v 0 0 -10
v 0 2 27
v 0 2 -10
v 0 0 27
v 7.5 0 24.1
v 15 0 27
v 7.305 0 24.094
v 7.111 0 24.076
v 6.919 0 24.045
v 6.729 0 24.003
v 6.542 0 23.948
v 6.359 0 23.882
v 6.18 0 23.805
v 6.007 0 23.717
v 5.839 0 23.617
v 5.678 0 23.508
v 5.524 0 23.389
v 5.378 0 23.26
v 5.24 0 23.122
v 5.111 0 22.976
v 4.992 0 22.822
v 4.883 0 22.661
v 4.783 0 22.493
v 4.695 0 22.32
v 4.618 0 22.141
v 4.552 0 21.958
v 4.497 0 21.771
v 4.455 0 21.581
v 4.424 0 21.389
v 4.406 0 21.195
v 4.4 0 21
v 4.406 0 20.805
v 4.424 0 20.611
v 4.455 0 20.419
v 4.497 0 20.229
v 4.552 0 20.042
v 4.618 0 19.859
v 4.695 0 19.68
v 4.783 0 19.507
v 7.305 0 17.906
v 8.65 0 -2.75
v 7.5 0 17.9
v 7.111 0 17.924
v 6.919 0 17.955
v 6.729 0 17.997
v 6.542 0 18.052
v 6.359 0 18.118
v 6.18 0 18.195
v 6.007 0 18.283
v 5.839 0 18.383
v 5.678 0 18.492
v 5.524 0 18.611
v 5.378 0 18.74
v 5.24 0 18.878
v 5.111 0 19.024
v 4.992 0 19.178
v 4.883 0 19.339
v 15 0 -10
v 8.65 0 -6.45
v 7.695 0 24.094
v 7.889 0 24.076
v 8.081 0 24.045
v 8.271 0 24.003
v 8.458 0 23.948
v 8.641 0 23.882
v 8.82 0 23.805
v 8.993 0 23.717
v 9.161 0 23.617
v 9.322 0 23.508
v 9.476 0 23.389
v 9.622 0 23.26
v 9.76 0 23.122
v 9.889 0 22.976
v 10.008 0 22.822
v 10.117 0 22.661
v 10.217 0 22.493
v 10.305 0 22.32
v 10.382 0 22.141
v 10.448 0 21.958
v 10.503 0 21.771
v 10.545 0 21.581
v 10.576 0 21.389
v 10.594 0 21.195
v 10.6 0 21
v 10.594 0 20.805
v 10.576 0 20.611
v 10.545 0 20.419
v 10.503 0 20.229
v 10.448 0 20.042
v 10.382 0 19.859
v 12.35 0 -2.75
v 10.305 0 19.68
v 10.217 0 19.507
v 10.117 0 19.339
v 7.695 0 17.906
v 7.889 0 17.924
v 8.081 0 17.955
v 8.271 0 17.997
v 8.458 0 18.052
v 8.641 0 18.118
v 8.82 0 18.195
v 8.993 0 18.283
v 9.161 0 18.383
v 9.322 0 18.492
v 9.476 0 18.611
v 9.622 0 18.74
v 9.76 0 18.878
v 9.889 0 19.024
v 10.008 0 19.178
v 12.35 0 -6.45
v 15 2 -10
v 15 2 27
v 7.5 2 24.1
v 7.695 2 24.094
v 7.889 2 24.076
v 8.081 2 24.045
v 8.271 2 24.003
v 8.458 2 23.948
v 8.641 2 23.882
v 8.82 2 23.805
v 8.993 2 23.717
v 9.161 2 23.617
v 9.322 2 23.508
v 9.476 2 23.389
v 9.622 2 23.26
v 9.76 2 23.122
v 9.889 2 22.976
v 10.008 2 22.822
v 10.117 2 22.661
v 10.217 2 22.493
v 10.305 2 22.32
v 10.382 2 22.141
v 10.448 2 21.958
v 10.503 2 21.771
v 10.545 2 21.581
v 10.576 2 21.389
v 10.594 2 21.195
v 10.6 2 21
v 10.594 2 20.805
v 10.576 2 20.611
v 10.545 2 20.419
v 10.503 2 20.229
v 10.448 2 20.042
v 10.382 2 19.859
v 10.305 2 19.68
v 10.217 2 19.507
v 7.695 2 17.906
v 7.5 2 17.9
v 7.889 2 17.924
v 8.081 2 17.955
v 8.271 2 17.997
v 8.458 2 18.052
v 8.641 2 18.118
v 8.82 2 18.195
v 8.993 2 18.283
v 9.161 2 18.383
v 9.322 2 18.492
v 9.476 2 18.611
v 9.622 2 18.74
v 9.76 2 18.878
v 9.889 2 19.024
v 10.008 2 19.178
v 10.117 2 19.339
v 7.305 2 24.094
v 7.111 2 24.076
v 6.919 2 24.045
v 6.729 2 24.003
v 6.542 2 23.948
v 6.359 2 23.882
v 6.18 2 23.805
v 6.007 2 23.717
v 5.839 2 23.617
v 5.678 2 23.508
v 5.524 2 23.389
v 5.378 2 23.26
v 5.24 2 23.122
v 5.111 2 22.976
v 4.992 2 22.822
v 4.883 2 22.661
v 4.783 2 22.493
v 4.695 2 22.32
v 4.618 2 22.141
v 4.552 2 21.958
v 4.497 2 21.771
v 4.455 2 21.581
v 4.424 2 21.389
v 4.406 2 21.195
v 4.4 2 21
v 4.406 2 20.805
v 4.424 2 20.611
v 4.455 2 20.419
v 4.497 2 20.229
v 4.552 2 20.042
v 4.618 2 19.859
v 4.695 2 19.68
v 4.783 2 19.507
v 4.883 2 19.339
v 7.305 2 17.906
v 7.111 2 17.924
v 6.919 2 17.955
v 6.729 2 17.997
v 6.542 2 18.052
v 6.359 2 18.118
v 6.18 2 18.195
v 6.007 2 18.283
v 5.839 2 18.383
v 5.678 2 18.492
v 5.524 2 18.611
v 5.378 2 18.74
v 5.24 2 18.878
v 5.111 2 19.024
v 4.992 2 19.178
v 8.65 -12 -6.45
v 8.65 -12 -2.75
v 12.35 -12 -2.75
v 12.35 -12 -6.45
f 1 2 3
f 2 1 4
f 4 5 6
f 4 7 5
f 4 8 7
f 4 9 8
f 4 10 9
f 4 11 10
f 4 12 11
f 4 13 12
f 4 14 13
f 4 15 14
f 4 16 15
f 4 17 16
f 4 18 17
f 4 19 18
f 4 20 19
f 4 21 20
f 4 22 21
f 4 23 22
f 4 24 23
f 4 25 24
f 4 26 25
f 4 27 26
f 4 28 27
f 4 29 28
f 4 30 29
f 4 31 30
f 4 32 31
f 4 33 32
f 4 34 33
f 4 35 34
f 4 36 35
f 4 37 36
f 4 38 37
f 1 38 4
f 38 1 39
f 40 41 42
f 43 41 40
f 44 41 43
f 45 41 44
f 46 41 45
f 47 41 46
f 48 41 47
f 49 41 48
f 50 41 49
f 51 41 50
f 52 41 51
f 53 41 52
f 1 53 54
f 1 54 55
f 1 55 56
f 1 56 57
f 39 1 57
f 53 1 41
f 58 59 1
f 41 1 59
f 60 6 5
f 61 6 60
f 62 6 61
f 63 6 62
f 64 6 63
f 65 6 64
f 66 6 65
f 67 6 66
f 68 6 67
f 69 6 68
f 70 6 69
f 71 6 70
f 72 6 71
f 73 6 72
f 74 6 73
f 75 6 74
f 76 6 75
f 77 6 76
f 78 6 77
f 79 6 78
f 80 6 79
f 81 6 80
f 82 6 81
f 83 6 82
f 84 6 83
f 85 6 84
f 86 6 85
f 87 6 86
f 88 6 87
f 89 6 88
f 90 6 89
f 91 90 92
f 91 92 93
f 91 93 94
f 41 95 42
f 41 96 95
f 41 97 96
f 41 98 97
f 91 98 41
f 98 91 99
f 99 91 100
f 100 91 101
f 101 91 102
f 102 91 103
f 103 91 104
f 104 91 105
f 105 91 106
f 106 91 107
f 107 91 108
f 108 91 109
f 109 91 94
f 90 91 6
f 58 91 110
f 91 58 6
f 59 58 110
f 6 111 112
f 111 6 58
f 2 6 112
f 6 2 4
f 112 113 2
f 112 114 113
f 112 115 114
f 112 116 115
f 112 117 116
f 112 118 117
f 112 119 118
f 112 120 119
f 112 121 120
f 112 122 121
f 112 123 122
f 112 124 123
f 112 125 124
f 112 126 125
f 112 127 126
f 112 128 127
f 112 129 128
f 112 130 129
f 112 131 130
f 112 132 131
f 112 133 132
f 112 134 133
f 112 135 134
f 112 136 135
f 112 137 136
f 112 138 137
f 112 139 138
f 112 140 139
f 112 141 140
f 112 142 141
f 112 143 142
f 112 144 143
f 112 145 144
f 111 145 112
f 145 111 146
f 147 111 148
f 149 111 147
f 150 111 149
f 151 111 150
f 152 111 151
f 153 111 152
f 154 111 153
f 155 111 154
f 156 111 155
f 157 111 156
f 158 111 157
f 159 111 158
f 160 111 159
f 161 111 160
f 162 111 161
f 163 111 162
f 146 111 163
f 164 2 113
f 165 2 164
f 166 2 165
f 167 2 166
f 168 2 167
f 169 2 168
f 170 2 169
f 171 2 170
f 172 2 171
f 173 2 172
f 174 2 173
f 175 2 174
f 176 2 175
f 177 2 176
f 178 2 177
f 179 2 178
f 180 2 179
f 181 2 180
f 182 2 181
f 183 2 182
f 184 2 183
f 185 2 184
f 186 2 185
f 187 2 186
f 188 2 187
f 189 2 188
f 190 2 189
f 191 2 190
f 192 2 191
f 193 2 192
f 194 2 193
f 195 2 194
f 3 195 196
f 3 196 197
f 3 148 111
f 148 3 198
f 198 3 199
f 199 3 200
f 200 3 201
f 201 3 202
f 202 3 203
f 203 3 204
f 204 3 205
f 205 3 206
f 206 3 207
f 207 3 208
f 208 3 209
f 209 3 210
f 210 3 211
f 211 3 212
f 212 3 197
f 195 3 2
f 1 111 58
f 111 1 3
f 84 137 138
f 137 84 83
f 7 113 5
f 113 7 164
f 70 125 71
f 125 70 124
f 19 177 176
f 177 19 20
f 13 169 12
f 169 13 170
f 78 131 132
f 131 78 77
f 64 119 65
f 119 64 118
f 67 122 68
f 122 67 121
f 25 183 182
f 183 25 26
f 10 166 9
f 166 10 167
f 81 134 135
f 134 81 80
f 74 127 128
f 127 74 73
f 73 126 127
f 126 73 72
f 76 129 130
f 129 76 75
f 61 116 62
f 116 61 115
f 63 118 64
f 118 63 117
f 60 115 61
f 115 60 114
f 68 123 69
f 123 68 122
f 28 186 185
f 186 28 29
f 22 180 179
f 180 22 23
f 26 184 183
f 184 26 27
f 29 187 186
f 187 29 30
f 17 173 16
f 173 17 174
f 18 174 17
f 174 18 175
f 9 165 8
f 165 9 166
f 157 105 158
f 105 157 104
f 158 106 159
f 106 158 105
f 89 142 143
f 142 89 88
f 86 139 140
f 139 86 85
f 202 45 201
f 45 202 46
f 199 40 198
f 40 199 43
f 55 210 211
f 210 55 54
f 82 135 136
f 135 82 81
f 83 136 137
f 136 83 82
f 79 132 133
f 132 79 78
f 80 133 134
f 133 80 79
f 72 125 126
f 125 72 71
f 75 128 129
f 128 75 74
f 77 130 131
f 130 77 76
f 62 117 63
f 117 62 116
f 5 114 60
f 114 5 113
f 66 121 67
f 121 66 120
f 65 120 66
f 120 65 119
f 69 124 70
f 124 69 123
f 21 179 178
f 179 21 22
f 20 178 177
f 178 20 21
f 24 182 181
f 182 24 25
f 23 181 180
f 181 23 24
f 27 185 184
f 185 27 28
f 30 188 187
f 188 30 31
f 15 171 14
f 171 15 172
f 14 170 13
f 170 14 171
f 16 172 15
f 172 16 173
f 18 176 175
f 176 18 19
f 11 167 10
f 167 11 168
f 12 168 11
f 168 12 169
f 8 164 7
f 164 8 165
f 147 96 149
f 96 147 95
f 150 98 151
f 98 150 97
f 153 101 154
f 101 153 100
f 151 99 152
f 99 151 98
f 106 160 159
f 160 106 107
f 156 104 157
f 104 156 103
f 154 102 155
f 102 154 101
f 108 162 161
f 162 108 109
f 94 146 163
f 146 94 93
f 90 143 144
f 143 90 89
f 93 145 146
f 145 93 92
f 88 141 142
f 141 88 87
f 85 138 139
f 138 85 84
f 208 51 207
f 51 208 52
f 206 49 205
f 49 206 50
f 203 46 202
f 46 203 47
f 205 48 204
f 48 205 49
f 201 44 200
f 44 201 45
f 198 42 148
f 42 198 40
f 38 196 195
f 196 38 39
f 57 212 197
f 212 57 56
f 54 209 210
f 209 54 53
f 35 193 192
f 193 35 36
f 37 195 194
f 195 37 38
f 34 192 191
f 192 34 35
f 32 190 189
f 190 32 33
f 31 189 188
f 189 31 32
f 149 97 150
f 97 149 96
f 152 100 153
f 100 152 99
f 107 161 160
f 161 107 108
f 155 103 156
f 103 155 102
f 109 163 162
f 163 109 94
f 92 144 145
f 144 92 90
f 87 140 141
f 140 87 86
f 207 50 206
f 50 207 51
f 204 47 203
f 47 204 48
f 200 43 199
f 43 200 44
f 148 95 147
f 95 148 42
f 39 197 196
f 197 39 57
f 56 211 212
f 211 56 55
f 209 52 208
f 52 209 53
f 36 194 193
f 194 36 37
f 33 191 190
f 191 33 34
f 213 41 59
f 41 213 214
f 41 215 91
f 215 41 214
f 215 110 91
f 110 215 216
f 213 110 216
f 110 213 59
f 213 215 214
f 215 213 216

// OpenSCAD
translate([0,2,-10])rotate([90,0,0])difference(){
    cube([15,29+5+3,2]);
    #translate([15/2,29+2,0])cylinder(2,6.2/2,6.2/2,$fn=100);
}

translate([0,0,-10])cube([15,2,10]);

k=17.25-19.50+16-11+3.7;
n=12;
translate([-3.7/2+15/2+3,-n,-k])cube([3.7,n,3.7]);
